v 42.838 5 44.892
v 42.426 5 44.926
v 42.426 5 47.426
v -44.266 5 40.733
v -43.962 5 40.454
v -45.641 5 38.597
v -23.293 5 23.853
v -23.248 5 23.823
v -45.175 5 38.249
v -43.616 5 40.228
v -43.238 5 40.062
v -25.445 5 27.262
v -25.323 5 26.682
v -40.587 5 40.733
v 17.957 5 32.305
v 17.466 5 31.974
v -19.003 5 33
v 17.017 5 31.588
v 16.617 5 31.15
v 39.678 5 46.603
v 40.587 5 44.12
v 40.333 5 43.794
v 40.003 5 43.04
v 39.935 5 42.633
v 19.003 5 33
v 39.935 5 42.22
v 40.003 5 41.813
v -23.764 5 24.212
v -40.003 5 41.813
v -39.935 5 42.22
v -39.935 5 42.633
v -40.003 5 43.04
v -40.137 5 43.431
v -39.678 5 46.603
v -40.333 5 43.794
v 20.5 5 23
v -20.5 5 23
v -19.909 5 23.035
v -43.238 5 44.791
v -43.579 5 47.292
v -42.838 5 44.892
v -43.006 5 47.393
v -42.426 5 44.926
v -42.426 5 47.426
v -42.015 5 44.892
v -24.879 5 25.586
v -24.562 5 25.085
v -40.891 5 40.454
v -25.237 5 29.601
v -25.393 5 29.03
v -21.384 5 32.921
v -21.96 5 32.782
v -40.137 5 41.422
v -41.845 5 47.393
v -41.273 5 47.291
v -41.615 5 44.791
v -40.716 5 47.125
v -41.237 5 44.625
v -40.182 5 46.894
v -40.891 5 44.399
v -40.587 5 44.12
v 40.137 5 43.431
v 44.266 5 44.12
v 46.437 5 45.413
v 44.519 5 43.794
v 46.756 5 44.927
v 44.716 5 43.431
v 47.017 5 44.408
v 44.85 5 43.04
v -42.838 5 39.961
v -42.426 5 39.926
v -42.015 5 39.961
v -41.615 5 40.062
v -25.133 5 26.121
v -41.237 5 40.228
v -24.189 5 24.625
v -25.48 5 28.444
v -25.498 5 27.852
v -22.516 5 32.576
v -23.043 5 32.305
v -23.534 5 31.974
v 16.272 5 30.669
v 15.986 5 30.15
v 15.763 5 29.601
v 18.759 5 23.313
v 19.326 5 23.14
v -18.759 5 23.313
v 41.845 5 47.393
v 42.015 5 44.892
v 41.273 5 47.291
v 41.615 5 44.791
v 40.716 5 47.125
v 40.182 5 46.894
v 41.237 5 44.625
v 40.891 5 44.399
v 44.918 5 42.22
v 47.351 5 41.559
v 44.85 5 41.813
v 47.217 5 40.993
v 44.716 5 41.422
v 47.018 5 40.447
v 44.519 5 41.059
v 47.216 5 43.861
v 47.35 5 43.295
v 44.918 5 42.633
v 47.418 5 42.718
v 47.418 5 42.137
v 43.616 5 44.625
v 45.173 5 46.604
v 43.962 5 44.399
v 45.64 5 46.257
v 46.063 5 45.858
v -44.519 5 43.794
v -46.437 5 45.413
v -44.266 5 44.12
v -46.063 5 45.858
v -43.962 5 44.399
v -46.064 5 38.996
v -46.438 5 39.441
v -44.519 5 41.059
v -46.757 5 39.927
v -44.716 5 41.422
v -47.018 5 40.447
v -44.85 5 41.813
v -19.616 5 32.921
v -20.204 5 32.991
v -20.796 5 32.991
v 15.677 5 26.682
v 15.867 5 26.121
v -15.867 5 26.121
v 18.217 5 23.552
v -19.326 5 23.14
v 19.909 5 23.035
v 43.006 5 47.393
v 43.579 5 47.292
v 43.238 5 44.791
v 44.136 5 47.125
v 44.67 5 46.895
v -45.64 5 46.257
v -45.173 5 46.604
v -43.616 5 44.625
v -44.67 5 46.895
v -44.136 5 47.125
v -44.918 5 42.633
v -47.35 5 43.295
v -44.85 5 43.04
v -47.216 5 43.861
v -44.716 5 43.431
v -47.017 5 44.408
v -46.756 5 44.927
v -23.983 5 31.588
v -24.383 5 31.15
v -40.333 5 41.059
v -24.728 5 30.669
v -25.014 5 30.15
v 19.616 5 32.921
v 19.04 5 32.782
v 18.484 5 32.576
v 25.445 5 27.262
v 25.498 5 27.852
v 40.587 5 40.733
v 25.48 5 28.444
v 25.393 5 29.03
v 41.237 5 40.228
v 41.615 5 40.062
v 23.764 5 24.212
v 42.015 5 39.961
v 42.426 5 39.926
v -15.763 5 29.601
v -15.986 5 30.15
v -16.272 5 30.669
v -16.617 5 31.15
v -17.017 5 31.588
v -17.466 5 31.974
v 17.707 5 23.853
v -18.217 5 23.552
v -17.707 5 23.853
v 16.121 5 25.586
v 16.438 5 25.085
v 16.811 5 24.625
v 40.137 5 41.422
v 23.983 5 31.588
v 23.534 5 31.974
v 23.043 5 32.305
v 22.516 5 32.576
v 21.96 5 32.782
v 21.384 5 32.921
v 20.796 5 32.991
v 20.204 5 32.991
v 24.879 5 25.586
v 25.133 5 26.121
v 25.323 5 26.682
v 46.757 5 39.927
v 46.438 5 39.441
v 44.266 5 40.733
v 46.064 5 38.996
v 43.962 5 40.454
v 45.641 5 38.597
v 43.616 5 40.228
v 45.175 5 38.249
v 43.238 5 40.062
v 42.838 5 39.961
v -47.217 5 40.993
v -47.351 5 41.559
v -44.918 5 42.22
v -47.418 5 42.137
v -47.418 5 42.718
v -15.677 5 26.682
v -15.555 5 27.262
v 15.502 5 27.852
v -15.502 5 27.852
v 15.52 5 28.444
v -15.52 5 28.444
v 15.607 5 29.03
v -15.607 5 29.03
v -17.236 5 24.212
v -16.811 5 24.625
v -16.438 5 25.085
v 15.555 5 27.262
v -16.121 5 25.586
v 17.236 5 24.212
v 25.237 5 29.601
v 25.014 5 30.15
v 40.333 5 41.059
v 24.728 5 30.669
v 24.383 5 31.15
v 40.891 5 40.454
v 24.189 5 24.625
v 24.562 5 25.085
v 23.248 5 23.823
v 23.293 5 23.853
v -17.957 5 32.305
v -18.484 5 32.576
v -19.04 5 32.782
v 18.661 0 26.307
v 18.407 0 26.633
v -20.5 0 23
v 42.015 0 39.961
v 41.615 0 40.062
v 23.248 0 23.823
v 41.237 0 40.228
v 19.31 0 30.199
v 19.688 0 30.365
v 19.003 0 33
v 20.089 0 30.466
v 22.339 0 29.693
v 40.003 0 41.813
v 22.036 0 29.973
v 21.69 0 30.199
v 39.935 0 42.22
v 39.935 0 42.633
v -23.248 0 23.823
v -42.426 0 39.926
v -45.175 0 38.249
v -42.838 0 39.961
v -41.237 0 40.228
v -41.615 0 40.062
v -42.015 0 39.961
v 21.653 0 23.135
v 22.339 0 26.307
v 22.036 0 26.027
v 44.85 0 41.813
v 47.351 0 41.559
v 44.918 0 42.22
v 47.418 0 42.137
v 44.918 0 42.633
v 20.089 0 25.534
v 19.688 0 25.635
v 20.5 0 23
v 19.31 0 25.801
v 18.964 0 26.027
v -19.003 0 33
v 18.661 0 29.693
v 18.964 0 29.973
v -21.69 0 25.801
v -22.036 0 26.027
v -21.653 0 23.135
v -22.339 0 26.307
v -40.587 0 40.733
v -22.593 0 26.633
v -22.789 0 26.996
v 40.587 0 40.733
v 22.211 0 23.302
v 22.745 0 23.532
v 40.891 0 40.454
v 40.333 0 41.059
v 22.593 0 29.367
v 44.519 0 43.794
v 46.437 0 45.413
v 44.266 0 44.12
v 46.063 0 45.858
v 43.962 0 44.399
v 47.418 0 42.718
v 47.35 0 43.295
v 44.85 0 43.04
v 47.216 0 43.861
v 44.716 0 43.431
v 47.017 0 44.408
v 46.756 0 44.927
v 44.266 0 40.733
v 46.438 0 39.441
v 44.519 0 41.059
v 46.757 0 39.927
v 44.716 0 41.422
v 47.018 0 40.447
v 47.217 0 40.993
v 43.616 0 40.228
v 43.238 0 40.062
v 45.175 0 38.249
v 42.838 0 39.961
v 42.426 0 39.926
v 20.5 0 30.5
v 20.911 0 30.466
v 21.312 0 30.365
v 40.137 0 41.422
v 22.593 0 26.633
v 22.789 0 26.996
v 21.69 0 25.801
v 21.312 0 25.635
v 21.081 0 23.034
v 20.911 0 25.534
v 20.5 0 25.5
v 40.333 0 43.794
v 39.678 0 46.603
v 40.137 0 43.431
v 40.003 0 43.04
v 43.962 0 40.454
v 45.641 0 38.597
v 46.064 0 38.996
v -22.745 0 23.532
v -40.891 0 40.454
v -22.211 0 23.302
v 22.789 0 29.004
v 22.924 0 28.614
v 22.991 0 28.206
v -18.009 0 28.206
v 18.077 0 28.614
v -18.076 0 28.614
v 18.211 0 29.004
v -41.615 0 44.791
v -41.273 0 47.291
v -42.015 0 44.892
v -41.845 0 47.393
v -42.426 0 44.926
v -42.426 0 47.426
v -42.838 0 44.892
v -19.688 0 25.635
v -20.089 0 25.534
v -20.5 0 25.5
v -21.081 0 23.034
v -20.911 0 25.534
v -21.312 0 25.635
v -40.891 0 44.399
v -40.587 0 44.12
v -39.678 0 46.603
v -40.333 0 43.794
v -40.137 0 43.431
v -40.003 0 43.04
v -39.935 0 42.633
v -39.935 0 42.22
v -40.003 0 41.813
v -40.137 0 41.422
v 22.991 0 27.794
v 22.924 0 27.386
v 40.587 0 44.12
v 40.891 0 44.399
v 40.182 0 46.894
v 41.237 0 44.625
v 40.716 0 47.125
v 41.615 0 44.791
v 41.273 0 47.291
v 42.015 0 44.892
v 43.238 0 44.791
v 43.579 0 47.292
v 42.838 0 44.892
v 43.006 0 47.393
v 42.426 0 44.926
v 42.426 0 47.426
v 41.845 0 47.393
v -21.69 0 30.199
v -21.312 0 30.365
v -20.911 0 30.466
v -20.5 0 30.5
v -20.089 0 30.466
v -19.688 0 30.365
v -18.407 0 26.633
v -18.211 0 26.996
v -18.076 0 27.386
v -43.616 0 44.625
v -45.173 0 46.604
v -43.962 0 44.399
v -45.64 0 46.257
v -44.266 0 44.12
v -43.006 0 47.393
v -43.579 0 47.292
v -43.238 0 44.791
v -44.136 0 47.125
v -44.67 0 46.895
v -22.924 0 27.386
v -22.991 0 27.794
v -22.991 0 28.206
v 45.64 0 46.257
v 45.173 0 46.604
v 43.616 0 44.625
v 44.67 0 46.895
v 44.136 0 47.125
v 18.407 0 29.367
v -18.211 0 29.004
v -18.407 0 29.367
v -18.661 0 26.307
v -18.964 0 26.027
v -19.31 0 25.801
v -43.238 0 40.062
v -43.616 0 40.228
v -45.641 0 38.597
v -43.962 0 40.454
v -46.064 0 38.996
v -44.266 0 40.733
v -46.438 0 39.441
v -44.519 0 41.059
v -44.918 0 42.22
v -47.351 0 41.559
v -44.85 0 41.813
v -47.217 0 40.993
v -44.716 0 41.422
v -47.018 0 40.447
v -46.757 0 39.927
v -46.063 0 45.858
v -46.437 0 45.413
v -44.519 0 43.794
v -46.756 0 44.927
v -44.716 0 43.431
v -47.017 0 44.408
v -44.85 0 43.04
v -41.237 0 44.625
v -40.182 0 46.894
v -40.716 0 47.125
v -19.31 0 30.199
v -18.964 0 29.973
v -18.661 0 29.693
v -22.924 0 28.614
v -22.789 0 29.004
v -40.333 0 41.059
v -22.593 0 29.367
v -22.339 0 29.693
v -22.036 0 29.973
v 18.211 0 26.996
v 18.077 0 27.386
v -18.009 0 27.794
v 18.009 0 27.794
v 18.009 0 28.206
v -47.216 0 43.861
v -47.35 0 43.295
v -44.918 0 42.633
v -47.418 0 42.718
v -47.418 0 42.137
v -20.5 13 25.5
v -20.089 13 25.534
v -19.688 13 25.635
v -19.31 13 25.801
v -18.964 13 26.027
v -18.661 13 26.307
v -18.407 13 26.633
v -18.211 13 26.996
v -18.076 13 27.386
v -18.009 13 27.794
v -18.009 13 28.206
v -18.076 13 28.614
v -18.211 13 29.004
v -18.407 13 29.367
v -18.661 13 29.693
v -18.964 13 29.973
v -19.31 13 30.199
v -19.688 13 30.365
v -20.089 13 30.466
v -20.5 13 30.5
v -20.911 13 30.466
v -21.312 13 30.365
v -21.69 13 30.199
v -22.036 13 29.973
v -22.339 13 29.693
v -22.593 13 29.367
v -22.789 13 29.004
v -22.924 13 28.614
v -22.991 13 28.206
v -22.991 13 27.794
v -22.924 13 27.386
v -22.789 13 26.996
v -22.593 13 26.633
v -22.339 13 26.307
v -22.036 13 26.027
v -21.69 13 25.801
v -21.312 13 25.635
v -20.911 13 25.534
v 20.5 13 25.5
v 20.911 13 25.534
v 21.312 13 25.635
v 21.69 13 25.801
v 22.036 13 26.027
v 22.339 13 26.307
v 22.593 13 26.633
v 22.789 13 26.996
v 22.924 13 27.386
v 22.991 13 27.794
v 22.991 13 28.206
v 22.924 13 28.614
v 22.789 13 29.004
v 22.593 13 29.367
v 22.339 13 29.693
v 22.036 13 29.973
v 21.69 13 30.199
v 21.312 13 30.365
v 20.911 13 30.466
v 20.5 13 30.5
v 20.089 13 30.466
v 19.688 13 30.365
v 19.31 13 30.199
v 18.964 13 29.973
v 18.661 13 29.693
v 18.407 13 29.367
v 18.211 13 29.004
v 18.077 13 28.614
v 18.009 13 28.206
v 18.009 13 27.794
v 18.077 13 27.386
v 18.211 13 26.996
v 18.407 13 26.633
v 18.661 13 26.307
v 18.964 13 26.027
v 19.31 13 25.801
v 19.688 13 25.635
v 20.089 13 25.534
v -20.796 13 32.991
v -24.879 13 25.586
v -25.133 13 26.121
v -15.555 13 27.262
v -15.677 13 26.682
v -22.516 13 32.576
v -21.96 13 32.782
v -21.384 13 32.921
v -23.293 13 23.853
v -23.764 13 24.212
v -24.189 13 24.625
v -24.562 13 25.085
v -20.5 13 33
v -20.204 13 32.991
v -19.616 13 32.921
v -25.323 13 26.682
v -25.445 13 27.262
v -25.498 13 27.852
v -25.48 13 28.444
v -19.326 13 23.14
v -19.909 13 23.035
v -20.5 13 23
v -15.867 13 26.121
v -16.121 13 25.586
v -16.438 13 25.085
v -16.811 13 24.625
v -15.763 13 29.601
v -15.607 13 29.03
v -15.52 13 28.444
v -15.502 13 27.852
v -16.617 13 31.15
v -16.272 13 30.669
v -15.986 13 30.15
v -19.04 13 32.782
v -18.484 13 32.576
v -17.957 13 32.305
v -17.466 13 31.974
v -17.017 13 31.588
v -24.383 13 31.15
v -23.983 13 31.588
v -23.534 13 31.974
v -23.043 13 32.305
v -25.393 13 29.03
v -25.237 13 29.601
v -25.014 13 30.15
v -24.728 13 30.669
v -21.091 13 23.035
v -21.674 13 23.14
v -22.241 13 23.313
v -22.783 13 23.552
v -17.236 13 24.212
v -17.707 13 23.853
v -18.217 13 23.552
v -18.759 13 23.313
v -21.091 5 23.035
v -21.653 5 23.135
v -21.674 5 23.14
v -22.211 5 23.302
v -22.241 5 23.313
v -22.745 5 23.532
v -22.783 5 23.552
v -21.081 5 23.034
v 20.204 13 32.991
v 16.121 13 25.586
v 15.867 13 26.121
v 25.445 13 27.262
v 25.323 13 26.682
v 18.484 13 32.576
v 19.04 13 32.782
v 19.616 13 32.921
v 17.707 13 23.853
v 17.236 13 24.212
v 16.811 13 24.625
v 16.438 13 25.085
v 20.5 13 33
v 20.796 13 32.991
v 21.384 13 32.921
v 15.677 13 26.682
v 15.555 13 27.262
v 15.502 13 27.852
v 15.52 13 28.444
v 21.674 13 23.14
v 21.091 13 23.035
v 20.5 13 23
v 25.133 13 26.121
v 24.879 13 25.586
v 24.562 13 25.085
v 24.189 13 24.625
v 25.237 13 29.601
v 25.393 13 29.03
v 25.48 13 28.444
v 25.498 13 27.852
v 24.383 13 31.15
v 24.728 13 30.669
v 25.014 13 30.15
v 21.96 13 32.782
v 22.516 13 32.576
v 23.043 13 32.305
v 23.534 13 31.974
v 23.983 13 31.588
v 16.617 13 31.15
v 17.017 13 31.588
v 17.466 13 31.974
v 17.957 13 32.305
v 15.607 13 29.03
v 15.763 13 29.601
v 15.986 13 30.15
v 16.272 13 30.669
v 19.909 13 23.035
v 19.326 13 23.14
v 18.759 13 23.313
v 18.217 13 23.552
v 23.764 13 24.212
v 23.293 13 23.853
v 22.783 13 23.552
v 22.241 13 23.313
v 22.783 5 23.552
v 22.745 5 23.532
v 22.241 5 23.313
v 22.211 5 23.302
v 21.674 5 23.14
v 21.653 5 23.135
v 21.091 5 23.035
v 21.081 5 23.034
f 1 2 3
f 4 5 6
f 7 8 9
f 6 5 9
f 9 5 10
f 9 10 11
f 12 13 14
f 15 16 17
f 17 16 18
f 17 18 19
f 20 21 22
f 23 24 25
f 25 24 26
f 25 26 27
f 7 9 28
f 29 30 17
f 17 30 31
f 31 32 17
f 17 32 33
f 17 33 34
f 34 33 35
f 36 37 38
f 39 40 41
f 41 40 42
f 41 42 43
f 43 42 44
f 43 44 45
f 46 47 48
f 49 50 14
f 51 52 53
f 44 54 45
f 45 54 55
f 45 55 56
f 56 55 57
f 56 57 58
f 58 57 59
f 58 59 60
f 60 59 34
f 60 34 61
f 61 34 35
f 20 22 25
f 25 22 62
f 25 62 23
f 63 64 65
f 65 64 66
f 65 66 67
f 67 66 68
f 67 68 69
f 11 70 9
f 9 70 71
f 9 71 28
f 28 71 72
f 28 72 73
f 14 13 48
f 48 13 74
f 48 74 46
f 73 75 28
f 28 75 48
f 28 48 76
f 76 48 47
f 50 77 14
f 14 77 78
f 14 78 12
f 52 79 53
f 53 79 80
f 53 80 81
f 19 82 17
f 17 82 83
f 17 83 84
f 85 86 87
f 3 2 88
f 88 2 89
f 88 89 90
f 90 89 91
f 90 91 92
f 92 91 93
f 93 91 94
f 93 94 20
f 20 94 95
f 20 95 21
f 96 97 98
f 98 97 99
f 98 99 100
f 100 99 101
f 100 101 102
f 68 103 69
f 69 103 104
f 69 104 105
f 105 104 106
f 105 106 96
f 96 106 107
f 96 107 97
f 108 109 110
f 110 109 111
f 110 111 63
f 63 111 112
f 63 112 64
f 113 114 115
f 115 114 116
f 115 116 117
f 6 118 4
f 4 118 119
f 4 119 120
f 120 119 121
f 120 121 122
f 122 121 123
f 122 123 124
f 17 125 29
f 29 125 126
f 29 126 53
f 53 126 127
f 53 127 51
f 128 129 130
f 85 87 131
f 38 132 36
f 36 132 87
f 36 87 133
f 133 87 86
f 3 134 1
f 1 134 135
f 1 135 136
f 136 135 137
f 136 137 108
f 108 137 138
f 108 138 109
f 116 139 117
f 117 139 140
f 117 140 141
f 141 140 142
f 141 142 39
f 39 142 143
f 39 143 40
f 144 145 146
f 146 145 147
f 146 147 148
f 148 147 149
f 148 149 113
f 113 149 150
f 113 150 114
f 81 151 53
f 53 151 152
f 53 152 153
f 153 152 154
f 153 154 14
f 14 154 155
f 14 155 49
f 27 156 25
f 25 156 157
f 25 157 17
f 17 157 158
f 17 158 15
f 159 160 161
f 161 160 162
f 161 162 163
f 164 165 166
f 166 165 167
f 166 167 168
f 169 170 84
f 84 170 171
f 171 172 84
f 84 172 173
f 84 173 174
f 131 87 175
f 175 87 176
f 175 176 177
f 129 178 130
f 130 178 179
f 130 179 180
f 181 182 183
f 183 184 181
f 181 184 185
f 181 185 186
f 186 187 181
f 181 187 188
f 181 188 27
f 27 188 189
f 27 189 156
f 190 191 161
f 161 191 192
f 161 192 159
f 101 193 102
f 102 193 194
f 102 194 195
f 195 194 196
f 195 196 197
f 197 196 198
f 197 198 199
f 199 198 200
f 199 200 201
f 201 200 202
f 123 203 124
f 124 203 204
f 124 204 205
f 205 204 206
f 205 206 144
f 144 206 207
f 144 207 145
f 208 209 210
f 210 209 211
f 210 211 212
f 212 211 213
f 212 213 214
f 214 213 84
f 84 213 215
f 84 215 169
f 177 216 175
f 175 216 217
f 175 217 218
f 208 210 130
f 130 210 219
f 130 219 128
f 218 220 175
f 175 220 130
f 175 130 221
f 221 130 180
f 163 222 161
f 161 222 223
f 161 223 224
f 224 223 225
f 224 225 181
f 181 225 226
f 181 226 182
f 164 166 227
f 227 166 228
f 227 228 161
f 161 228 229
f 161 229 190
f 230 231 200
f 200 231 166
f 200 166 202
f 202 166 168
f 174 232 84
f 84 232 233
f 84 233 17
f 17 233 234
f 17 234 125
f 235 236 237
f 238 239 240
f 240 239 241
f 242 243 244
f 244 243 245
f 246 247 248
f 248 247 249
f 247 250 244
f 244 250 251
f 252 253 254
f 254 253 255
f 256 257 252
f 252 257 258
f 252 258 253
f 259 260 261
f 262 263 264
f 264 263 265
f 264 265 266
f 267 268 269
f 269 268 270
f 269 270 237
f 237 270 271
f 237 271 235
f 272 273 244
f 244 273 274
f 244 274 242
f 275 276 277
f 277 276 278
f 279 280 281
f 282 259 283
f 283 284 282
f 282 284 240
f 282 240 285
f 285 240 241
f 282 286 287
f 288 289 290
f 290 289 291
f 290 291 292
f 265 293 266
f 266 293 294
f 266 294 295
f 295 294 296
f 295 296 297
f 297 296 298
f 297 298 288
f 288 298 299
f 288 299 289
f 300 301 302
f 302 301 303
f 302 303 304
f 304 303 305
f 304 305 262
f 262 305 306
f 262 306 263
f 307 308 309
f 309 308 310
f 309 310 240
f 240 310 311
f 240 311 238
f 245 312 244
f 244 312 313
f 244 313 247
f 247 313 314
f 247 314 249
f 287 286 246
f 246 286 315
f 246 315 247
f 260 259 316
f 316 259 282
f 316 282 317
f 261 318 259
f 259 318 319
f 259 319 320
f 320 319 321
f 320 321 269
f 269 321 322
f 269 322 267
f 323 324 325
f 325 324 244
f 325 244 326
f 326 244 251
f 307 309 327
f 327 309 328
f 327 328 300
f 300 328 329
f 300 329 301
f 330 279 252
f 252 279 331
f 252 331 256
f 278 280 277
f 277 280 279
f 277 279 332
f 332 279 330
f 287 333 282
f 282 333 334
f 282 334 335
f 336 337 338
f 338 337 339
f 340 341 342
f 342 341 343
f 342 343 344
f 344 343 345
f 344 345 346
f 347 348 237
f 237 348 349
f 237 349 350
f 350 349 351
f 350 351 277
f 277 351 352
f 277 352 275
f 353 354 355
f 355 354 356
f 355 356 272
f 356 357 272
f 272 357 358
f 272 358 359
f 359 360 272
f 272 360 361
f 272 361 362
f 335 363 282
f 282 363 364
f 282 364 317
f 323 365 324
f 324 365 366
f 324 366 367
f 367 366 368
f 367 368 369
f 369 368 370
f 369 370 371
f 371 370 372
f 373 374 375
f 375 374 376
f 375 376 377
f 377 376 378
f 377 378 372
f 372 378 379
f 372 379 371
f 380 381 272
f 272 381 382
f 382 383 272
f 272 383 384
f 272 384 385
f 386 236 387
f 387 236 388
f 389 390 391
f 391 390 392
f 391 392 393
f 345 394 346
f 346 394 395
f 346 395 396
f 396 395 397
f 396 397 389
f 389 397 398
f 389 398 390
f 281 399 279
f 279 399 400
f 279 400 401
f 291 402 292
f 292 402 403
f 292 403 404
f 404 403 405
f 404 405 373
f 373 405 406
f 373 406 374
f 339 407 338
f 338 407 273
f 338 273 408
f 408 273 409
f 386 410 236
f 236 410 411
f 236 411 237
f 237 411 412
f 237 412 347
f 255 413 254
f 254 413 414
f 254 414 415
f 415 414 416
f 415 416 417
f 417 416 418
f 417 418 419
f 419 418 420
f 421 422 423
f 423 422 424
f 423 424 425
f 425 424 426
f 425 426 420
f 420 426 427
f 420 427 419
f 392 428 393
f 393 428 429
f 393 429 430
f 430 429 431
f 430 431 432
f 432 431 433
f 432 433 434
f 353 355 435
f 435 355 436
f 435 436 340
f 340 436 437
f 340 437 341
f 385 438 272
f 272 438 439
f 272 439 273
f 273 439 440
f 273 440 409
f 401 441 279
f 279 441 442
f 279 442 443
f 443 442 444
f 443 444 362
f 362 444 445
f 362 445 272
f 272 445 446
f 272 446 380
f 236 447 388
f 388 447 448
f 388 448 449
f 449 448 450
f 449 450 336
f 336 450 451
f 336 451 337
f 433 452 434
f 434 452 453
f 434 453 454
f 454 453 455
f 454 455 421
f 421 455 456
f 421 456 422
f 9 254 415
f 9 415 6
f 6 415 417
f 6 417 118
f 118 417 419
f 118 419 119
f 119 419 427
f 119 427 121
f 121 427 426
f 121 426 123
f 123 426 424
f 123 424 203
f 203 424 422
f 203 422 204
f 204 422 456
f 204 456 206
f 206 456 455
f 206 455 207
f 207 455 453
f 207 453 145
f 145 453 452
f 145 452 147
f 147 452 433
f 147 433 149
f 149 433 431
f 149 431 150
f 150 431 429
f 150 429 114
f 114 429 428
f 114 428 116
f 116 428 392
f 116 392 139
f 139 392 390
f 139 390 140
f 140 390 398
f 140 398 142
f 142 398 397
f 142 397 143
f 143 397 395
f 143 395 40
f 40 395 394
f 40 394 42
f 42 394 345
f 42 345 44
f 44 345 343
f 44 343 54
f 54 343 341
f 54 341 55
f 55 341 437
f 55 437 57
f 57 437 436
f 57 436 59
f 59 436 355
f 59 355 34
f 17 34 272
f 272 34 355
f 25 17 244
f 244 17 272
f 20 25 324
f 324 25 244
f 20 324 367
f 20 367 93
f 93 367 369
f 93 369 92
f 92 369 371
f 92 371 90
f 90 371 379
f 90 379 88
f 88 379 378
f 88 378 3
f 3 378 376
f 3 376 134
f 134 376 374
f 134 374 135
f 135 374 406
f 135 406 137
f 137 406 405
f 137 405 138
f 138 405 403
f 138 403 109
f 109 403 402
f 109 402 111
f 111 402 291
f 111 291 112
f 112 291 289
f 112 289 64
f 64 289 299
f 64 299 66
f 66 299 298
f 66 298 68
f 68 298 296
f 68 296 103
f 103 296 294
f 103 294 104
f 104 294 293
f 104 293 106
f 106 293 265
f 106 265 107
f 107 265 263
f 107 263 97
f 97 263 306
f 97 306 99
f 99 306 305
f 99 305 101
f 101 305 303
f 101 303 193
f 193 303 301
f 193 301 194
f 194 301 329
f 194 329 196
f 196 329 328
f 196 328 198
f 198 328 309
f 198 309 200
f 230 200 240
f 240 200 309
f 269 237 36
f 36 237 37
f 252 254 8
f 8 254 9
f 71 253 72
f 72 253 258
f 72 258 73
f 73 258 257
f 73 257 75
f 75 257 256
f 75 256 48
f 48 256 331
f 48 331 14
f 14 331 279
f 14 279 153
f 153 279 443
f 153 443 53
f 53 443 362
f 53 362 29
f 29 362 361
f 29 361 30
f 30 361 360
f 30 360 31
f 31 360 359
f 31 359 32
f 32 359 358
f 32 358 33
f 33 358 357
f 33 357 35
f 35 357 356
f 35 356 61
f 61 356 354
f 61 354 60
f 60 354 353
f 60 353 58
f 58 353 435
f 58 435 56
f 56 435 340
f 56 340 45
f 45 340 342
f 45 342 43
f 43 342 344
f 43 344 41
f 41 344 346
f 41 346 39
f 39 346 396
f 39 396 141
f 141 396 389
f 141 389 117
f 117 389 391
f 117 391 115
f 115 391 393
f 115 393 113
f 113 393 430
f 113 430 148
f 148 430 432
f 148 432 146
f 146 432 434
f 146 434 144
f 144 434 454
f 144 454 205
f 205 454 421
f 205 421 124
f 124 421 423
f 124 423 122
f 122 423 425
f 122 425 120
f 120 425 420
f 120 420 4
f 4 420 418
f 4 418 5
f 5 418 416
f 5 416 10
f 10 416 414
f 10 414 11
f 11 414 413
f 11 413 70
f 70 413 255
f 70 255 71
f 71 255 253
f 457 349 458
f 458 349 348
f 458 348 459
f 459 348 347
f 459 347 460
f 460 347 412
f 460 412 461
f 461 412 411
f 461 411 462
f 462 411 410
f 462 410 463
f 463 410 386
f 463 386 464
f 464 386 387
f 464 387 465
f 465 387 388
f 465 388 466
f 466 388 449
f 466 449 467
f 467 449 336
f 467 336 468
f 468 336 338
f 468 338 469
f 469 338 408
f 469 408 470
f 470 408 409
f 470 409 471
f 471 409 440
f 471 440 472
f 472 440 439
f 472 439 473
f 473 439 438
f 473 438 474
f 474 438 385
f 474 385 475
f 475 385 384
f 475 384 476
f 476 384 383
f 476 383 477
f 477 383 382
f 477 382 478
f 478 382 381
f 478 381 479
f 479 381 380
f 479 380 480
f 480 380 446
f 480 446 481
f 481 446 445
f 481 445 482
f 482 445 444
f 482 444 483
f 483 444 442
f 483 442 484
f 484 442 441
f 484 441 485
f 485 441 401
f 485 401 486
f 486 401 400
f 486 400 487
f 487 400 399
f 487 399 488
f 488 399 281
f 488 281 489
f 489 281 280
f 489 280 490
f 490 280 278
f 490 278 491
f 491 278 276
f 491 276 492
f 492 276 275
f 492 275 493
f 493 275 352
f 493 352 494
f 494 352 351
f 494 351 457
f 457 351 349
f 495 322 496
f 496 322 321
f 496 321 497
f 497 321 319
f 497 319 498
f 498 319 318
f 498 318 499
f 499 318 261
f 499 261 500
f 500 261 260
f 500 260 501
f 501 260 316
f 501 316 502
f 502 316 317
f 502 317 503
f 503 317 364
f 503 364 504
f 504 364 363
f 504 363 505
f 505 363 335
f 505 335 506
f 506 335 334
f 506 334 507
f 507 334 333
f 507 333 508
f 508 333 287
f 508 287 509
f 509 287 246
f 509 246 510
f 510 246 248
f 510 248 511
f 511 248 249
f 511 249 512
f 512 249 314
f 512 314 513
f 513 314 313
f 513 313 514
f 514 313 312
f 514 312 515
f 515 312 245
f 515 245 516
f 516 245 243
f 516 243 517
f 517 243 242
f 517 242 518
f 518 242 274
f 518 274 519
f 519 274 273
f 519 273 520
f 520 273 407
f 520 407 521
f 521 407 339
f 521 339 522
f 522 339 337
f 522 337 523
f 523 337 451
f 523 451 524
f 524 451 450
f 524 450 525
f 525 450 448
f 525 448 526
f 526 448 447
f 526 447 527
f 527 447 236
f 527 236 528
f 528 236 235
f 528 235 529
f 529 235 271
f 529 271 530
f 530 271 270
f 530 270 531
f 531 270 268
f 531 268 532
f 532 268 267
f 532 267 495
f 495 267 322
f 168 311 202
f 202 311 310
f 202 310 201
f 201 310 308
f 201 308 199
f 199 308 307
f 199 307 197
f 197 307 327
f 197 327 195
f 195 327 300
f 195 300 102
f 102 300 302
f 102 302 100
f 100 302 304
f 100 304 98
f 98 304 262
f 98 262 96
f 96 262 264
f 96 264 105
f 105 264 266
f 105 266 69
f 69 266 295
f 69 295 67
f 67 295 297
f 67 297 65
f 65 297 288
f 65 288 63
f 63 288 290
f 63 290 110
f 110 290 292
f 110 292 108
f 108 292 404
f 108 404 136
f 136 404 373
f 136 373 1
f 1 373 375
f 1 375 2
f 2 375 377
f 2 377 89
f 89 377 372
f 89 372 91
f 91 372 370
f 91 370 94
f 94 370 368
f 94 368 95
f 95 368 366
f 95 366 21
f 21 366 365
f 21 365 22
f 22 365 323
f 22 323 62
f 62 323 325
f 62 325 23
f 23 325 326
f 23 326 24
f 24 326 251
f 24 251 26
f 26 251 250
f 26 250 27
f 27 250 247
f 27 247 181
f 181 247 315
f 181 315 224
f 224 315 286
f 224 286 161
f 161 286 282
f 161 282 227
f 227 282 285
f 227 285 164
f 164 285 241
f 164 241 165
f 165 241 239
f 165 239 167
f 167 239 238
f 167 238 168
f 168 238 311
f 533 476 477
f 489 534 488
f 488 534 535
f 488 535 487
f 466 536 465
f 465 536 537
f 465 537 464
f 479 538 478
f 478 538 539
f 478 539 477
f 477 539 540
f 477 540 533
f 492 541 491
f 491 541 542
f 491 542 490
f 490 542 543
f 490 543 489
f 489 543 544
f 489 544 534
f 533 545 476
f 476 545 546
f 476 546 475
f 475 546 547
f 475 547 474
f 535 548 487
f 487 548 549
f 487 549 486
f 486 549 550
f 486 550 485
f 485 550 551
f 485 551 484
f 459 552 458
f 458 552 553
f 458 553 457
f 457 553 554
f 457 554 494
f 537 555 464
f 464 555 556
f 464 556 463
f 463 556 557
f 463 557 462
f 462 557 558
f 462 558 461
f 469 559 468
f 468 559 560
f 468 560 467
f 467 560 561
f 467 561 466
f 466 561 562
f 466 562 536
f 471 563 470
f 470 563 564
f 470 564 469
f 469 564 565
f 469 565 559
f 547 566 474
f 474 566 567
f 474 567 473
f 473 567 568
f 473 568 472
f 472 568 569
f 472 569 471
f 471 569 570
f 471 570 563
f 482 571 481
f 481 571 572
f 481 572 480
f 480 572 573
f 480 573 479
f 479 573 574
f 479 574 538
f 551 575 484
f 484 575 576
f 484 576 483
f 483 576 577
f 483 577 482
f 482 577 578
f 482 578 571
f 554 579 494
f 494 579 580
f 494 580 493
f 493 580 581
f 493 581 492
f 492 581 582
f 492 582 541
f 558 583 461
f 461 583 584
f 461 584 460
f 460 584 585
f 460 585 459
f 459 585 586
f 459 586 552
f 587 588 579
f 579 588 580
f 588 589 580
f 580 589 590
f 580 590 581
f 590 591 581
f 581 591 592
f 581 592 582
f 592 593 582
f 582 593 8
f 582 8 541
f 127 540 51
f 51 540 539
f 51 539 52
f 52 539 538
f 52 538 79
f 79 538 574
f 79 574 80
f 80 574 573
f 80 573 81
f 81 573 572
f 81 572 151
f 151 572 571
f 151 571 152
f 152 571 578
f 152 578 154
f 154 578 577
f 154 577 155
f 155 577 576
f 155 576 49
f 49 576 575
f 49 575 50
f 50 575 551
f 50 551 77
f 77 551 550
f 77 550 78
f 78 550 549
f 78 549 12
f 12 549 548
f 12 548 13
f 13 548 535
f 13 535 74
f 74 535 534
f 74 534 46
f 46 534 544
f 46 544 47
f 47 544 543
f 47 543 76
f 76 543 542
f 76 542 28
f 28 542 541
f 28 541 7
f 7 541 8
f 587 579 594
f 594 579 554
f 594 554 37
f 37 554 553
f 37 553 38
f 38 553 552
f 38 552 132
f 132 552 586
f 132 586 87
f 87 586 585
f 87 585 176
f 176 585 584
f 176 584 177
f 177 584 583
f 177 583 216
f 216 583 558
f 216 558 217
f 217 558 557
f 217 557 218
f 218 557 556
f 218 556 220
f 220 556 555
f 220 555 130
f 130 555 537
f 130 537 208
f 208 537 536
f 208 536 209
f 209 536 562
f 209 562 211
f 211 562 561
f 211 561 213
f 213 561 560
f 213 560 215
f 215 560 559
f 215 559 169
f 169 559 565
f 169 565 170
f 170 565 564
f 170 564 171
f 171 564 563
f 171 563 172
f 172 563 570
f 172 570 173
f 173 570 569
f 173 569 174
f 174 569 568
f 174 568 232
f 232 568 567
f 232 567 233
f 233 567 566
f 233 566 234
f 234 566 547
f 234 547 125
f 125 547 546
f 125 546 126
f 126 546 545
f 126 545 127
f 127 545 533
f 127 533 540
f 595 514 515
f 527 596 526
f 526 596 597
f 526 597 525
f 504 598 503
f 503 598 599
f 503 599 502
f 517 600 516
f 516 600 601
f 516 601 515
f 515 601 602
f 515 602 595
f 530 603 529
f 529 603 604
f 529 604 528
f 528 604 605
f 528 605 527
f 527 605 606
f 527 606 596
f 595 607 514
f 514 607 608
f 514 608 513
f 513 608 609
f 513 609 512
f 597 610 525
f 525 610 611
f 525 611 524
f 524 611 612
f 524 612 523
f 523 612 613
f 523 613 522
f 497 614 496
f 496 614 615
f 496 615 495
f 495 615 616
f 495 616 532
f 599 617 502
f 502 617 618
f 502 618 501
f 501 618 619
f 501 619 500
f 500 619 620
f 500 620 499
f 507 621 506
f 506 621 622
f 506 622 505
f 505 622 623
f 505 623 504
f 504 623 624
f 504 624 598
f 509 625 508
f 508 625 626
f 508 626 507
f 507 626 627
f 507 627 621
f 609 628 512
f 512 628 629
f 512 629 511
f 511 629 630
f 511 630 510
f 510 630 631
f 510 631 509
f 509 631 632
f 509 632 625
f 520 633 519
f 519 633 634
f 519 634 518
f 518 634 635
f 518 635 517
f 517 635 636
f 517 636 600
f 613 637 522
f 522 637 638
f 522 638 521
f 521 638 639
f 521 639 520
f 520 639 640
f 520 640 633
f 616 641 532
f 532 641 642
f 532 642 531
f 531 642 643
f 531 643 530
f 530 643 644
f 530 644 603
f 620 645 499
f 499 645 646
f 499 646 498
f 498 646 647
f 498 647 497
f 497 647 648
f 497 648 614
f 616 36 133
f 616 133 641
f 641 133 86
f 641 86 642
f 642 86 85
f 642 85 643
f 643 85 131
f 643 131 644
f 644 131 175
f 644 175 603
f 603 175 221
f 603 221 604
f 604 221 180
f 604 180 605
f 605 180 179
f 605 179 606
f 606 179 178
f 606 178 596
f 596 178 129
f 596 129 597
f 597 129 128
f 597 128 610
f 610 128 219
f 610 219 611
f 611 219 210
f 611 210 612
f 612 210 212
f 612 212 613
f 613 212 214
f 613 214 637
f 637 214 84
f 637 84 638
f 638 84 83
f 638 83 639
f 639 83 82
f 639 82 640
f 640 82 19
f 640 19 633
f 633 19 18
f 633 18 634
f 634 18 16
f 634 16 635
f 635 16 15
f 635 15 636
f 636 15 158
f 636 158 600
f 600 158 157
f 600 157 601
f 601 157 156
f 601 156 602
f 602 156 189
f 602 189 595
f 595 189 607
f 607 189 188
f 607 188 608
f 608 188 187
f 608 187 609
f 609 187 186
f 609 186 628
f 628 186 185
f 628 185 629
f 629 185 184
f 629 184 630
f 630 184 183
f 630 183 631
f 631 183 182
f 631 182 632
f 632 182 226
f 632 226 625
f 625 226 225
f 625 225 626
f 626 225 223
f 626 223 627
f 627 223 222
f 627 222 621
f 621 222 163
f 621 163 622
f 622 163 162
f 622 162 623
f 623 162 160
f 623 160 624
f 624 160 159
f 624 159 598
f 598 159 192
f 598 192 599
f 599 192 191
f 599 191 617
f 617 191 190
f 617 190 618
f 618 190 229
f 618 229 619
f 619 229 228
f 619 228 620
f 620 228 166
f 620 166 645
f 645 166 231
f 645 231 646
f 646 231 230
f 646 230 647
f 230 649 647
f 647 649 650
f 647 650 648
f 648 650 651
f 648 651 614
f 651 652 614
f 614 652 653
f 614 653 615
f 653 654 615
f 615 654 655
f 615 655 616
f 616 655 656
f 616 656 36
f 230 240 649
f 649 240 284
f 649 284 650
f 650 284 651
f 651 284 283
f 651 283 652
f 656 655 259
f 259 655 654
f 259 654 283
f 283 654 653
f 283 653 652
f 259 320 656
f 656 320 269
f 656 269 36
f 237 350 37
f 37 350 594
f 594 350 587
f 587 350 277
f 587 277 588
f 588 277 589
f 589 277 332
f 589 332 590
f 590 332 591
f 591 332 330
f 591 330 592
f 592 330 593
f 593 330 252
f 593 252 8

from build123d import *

# Parameters (mm, degrees)
SKETCH2_R           = 2.5
BOSS_EXTRUDE1_DEPTH = 5
SKETCH3_R           = 5
SKETCH3_R_2         = 2.5
BOSS_EXTRUDE2_DEPTH = 8
FILLET1_R           = 5


with BuildPart() as part:
    # Sketch2 → Boss-Extrude1 (new body)
    with BuildSketch(Plane(origin=(0, 0, 0), x_dir=(1, 0, 0), z_dir=(0, 1, 0))):
        with BuildLine():
            Line((-39.678172905, -46.603392635), (-19.002648889, -33))
            Line((-19.002648889, -33), (19.002648889, -33))
            Line((19.002648889, -33), (39.678172905, -46.603392635))
            ThreePointArc((39.678172905, -46.603392635), (46.603392635, -45.174640837), (45.174640837, -38.249421108))
            Line((45.174640837, -38.249421108), (21.997351111, -23))
            Line((21.997351111, -23), (-21.997351111, -23))
            Line((-21.997351111, -23), (-45.174640837, -38.249421108))
            ThreePointArc((-45.174640837, -38.249421108), (-46.603392635, -45.174640837), (-39.678172905, -46.603392635))
        make_face()
        with Locations(Location((-42.426406871, -42.426406871, 0), (0, 0, 270))):
            Circle(SKETCH2_R, mode=Mode.SUBTRACT)
        with Locations(Location((-20.5, -28, 0), (0, 0, 270))):
            Circle(SKETCH2_R, mode=Mode.SUBTRACT)
        with Locations(Location((20.5, -28, 0), (0, 0, 270))):
            Circle(SKETCH2_R, mode=Mode.SUBTRACT)
        with Locations(Location((42.426406871, -42.426406871, 0), (0, 0, 270))):
            Circle(SKETCH2_R, mode=Mode.SUBTRACT)
    extrude(amount=BOSS_EXTRUDE1_DEPTH)

    # Sketch3 → Boss-Extrude2 (add)
    # profile 1 of 2: a face of its own
    with BuildSketch(Plane(origin=(0, 5, 0), x_dir=(1, 0, 0), z_dir=(0, 1, 0))):
        with Locations(Location((-20.5, -28, 0), (0, 0, 90))):
            Circle(SKETCH3_R)
        with Locations(Location((-20.5, -28, 0), (0, 0, 270))):
            Circle(SKETCH3_R_2, mode=Mode.SUBTRACT)
    # profile 2 of 2: a face of its own
    with BuildSketch(Plane(origin=(0, 5, 0), x_dir=(1, 0, 0), z_dir=(0, 1, 0))):
        with Locations(Location((20.5, -28, 0), (0, 0, 90))):
            Circle(SKETCH3_R)
        with Locations(Location((20.5, -28, 0), (0, 0, 270))):
            Circle(SKETCH3_R_2, mode=Mode.SUBTRACT)
    extrude(amount=BOSS_EXTRUDE2_DEPTH)

    # Fillet1
    # the kernel refuses this fillet: 5 mm, written as the material it takes off along each edge
    with BuildSketch(Plane(origin=(21.997351111, -3.743377778, 23), x_dir=(0.8353971526785962, 0, 0.5496467932195132), z_dir=(0, 1, 0)), Plane(origin=(-21.997351111, -3.743377778, 23), x_dir=(1, 0, 0), z_dir=(0, 1, 0))) as fillet1_piece_1:
        with BuildLine():
            CenterArc((FILLET1_R * 0.299470222244, -FILLET1_R), FILLET1_R, 90, 33.342784883)
            Line((-FILLET1_R * 0.250176570975, -FILLET1_R * 0.164602847321), (0, 0))
            Line((0, 0), (FILLET1_R * 0.299470222244, 0))
        make_face()
    extrude(amount=12.486755556, mode=Mode.SUBTRACT)


solid = part.part
